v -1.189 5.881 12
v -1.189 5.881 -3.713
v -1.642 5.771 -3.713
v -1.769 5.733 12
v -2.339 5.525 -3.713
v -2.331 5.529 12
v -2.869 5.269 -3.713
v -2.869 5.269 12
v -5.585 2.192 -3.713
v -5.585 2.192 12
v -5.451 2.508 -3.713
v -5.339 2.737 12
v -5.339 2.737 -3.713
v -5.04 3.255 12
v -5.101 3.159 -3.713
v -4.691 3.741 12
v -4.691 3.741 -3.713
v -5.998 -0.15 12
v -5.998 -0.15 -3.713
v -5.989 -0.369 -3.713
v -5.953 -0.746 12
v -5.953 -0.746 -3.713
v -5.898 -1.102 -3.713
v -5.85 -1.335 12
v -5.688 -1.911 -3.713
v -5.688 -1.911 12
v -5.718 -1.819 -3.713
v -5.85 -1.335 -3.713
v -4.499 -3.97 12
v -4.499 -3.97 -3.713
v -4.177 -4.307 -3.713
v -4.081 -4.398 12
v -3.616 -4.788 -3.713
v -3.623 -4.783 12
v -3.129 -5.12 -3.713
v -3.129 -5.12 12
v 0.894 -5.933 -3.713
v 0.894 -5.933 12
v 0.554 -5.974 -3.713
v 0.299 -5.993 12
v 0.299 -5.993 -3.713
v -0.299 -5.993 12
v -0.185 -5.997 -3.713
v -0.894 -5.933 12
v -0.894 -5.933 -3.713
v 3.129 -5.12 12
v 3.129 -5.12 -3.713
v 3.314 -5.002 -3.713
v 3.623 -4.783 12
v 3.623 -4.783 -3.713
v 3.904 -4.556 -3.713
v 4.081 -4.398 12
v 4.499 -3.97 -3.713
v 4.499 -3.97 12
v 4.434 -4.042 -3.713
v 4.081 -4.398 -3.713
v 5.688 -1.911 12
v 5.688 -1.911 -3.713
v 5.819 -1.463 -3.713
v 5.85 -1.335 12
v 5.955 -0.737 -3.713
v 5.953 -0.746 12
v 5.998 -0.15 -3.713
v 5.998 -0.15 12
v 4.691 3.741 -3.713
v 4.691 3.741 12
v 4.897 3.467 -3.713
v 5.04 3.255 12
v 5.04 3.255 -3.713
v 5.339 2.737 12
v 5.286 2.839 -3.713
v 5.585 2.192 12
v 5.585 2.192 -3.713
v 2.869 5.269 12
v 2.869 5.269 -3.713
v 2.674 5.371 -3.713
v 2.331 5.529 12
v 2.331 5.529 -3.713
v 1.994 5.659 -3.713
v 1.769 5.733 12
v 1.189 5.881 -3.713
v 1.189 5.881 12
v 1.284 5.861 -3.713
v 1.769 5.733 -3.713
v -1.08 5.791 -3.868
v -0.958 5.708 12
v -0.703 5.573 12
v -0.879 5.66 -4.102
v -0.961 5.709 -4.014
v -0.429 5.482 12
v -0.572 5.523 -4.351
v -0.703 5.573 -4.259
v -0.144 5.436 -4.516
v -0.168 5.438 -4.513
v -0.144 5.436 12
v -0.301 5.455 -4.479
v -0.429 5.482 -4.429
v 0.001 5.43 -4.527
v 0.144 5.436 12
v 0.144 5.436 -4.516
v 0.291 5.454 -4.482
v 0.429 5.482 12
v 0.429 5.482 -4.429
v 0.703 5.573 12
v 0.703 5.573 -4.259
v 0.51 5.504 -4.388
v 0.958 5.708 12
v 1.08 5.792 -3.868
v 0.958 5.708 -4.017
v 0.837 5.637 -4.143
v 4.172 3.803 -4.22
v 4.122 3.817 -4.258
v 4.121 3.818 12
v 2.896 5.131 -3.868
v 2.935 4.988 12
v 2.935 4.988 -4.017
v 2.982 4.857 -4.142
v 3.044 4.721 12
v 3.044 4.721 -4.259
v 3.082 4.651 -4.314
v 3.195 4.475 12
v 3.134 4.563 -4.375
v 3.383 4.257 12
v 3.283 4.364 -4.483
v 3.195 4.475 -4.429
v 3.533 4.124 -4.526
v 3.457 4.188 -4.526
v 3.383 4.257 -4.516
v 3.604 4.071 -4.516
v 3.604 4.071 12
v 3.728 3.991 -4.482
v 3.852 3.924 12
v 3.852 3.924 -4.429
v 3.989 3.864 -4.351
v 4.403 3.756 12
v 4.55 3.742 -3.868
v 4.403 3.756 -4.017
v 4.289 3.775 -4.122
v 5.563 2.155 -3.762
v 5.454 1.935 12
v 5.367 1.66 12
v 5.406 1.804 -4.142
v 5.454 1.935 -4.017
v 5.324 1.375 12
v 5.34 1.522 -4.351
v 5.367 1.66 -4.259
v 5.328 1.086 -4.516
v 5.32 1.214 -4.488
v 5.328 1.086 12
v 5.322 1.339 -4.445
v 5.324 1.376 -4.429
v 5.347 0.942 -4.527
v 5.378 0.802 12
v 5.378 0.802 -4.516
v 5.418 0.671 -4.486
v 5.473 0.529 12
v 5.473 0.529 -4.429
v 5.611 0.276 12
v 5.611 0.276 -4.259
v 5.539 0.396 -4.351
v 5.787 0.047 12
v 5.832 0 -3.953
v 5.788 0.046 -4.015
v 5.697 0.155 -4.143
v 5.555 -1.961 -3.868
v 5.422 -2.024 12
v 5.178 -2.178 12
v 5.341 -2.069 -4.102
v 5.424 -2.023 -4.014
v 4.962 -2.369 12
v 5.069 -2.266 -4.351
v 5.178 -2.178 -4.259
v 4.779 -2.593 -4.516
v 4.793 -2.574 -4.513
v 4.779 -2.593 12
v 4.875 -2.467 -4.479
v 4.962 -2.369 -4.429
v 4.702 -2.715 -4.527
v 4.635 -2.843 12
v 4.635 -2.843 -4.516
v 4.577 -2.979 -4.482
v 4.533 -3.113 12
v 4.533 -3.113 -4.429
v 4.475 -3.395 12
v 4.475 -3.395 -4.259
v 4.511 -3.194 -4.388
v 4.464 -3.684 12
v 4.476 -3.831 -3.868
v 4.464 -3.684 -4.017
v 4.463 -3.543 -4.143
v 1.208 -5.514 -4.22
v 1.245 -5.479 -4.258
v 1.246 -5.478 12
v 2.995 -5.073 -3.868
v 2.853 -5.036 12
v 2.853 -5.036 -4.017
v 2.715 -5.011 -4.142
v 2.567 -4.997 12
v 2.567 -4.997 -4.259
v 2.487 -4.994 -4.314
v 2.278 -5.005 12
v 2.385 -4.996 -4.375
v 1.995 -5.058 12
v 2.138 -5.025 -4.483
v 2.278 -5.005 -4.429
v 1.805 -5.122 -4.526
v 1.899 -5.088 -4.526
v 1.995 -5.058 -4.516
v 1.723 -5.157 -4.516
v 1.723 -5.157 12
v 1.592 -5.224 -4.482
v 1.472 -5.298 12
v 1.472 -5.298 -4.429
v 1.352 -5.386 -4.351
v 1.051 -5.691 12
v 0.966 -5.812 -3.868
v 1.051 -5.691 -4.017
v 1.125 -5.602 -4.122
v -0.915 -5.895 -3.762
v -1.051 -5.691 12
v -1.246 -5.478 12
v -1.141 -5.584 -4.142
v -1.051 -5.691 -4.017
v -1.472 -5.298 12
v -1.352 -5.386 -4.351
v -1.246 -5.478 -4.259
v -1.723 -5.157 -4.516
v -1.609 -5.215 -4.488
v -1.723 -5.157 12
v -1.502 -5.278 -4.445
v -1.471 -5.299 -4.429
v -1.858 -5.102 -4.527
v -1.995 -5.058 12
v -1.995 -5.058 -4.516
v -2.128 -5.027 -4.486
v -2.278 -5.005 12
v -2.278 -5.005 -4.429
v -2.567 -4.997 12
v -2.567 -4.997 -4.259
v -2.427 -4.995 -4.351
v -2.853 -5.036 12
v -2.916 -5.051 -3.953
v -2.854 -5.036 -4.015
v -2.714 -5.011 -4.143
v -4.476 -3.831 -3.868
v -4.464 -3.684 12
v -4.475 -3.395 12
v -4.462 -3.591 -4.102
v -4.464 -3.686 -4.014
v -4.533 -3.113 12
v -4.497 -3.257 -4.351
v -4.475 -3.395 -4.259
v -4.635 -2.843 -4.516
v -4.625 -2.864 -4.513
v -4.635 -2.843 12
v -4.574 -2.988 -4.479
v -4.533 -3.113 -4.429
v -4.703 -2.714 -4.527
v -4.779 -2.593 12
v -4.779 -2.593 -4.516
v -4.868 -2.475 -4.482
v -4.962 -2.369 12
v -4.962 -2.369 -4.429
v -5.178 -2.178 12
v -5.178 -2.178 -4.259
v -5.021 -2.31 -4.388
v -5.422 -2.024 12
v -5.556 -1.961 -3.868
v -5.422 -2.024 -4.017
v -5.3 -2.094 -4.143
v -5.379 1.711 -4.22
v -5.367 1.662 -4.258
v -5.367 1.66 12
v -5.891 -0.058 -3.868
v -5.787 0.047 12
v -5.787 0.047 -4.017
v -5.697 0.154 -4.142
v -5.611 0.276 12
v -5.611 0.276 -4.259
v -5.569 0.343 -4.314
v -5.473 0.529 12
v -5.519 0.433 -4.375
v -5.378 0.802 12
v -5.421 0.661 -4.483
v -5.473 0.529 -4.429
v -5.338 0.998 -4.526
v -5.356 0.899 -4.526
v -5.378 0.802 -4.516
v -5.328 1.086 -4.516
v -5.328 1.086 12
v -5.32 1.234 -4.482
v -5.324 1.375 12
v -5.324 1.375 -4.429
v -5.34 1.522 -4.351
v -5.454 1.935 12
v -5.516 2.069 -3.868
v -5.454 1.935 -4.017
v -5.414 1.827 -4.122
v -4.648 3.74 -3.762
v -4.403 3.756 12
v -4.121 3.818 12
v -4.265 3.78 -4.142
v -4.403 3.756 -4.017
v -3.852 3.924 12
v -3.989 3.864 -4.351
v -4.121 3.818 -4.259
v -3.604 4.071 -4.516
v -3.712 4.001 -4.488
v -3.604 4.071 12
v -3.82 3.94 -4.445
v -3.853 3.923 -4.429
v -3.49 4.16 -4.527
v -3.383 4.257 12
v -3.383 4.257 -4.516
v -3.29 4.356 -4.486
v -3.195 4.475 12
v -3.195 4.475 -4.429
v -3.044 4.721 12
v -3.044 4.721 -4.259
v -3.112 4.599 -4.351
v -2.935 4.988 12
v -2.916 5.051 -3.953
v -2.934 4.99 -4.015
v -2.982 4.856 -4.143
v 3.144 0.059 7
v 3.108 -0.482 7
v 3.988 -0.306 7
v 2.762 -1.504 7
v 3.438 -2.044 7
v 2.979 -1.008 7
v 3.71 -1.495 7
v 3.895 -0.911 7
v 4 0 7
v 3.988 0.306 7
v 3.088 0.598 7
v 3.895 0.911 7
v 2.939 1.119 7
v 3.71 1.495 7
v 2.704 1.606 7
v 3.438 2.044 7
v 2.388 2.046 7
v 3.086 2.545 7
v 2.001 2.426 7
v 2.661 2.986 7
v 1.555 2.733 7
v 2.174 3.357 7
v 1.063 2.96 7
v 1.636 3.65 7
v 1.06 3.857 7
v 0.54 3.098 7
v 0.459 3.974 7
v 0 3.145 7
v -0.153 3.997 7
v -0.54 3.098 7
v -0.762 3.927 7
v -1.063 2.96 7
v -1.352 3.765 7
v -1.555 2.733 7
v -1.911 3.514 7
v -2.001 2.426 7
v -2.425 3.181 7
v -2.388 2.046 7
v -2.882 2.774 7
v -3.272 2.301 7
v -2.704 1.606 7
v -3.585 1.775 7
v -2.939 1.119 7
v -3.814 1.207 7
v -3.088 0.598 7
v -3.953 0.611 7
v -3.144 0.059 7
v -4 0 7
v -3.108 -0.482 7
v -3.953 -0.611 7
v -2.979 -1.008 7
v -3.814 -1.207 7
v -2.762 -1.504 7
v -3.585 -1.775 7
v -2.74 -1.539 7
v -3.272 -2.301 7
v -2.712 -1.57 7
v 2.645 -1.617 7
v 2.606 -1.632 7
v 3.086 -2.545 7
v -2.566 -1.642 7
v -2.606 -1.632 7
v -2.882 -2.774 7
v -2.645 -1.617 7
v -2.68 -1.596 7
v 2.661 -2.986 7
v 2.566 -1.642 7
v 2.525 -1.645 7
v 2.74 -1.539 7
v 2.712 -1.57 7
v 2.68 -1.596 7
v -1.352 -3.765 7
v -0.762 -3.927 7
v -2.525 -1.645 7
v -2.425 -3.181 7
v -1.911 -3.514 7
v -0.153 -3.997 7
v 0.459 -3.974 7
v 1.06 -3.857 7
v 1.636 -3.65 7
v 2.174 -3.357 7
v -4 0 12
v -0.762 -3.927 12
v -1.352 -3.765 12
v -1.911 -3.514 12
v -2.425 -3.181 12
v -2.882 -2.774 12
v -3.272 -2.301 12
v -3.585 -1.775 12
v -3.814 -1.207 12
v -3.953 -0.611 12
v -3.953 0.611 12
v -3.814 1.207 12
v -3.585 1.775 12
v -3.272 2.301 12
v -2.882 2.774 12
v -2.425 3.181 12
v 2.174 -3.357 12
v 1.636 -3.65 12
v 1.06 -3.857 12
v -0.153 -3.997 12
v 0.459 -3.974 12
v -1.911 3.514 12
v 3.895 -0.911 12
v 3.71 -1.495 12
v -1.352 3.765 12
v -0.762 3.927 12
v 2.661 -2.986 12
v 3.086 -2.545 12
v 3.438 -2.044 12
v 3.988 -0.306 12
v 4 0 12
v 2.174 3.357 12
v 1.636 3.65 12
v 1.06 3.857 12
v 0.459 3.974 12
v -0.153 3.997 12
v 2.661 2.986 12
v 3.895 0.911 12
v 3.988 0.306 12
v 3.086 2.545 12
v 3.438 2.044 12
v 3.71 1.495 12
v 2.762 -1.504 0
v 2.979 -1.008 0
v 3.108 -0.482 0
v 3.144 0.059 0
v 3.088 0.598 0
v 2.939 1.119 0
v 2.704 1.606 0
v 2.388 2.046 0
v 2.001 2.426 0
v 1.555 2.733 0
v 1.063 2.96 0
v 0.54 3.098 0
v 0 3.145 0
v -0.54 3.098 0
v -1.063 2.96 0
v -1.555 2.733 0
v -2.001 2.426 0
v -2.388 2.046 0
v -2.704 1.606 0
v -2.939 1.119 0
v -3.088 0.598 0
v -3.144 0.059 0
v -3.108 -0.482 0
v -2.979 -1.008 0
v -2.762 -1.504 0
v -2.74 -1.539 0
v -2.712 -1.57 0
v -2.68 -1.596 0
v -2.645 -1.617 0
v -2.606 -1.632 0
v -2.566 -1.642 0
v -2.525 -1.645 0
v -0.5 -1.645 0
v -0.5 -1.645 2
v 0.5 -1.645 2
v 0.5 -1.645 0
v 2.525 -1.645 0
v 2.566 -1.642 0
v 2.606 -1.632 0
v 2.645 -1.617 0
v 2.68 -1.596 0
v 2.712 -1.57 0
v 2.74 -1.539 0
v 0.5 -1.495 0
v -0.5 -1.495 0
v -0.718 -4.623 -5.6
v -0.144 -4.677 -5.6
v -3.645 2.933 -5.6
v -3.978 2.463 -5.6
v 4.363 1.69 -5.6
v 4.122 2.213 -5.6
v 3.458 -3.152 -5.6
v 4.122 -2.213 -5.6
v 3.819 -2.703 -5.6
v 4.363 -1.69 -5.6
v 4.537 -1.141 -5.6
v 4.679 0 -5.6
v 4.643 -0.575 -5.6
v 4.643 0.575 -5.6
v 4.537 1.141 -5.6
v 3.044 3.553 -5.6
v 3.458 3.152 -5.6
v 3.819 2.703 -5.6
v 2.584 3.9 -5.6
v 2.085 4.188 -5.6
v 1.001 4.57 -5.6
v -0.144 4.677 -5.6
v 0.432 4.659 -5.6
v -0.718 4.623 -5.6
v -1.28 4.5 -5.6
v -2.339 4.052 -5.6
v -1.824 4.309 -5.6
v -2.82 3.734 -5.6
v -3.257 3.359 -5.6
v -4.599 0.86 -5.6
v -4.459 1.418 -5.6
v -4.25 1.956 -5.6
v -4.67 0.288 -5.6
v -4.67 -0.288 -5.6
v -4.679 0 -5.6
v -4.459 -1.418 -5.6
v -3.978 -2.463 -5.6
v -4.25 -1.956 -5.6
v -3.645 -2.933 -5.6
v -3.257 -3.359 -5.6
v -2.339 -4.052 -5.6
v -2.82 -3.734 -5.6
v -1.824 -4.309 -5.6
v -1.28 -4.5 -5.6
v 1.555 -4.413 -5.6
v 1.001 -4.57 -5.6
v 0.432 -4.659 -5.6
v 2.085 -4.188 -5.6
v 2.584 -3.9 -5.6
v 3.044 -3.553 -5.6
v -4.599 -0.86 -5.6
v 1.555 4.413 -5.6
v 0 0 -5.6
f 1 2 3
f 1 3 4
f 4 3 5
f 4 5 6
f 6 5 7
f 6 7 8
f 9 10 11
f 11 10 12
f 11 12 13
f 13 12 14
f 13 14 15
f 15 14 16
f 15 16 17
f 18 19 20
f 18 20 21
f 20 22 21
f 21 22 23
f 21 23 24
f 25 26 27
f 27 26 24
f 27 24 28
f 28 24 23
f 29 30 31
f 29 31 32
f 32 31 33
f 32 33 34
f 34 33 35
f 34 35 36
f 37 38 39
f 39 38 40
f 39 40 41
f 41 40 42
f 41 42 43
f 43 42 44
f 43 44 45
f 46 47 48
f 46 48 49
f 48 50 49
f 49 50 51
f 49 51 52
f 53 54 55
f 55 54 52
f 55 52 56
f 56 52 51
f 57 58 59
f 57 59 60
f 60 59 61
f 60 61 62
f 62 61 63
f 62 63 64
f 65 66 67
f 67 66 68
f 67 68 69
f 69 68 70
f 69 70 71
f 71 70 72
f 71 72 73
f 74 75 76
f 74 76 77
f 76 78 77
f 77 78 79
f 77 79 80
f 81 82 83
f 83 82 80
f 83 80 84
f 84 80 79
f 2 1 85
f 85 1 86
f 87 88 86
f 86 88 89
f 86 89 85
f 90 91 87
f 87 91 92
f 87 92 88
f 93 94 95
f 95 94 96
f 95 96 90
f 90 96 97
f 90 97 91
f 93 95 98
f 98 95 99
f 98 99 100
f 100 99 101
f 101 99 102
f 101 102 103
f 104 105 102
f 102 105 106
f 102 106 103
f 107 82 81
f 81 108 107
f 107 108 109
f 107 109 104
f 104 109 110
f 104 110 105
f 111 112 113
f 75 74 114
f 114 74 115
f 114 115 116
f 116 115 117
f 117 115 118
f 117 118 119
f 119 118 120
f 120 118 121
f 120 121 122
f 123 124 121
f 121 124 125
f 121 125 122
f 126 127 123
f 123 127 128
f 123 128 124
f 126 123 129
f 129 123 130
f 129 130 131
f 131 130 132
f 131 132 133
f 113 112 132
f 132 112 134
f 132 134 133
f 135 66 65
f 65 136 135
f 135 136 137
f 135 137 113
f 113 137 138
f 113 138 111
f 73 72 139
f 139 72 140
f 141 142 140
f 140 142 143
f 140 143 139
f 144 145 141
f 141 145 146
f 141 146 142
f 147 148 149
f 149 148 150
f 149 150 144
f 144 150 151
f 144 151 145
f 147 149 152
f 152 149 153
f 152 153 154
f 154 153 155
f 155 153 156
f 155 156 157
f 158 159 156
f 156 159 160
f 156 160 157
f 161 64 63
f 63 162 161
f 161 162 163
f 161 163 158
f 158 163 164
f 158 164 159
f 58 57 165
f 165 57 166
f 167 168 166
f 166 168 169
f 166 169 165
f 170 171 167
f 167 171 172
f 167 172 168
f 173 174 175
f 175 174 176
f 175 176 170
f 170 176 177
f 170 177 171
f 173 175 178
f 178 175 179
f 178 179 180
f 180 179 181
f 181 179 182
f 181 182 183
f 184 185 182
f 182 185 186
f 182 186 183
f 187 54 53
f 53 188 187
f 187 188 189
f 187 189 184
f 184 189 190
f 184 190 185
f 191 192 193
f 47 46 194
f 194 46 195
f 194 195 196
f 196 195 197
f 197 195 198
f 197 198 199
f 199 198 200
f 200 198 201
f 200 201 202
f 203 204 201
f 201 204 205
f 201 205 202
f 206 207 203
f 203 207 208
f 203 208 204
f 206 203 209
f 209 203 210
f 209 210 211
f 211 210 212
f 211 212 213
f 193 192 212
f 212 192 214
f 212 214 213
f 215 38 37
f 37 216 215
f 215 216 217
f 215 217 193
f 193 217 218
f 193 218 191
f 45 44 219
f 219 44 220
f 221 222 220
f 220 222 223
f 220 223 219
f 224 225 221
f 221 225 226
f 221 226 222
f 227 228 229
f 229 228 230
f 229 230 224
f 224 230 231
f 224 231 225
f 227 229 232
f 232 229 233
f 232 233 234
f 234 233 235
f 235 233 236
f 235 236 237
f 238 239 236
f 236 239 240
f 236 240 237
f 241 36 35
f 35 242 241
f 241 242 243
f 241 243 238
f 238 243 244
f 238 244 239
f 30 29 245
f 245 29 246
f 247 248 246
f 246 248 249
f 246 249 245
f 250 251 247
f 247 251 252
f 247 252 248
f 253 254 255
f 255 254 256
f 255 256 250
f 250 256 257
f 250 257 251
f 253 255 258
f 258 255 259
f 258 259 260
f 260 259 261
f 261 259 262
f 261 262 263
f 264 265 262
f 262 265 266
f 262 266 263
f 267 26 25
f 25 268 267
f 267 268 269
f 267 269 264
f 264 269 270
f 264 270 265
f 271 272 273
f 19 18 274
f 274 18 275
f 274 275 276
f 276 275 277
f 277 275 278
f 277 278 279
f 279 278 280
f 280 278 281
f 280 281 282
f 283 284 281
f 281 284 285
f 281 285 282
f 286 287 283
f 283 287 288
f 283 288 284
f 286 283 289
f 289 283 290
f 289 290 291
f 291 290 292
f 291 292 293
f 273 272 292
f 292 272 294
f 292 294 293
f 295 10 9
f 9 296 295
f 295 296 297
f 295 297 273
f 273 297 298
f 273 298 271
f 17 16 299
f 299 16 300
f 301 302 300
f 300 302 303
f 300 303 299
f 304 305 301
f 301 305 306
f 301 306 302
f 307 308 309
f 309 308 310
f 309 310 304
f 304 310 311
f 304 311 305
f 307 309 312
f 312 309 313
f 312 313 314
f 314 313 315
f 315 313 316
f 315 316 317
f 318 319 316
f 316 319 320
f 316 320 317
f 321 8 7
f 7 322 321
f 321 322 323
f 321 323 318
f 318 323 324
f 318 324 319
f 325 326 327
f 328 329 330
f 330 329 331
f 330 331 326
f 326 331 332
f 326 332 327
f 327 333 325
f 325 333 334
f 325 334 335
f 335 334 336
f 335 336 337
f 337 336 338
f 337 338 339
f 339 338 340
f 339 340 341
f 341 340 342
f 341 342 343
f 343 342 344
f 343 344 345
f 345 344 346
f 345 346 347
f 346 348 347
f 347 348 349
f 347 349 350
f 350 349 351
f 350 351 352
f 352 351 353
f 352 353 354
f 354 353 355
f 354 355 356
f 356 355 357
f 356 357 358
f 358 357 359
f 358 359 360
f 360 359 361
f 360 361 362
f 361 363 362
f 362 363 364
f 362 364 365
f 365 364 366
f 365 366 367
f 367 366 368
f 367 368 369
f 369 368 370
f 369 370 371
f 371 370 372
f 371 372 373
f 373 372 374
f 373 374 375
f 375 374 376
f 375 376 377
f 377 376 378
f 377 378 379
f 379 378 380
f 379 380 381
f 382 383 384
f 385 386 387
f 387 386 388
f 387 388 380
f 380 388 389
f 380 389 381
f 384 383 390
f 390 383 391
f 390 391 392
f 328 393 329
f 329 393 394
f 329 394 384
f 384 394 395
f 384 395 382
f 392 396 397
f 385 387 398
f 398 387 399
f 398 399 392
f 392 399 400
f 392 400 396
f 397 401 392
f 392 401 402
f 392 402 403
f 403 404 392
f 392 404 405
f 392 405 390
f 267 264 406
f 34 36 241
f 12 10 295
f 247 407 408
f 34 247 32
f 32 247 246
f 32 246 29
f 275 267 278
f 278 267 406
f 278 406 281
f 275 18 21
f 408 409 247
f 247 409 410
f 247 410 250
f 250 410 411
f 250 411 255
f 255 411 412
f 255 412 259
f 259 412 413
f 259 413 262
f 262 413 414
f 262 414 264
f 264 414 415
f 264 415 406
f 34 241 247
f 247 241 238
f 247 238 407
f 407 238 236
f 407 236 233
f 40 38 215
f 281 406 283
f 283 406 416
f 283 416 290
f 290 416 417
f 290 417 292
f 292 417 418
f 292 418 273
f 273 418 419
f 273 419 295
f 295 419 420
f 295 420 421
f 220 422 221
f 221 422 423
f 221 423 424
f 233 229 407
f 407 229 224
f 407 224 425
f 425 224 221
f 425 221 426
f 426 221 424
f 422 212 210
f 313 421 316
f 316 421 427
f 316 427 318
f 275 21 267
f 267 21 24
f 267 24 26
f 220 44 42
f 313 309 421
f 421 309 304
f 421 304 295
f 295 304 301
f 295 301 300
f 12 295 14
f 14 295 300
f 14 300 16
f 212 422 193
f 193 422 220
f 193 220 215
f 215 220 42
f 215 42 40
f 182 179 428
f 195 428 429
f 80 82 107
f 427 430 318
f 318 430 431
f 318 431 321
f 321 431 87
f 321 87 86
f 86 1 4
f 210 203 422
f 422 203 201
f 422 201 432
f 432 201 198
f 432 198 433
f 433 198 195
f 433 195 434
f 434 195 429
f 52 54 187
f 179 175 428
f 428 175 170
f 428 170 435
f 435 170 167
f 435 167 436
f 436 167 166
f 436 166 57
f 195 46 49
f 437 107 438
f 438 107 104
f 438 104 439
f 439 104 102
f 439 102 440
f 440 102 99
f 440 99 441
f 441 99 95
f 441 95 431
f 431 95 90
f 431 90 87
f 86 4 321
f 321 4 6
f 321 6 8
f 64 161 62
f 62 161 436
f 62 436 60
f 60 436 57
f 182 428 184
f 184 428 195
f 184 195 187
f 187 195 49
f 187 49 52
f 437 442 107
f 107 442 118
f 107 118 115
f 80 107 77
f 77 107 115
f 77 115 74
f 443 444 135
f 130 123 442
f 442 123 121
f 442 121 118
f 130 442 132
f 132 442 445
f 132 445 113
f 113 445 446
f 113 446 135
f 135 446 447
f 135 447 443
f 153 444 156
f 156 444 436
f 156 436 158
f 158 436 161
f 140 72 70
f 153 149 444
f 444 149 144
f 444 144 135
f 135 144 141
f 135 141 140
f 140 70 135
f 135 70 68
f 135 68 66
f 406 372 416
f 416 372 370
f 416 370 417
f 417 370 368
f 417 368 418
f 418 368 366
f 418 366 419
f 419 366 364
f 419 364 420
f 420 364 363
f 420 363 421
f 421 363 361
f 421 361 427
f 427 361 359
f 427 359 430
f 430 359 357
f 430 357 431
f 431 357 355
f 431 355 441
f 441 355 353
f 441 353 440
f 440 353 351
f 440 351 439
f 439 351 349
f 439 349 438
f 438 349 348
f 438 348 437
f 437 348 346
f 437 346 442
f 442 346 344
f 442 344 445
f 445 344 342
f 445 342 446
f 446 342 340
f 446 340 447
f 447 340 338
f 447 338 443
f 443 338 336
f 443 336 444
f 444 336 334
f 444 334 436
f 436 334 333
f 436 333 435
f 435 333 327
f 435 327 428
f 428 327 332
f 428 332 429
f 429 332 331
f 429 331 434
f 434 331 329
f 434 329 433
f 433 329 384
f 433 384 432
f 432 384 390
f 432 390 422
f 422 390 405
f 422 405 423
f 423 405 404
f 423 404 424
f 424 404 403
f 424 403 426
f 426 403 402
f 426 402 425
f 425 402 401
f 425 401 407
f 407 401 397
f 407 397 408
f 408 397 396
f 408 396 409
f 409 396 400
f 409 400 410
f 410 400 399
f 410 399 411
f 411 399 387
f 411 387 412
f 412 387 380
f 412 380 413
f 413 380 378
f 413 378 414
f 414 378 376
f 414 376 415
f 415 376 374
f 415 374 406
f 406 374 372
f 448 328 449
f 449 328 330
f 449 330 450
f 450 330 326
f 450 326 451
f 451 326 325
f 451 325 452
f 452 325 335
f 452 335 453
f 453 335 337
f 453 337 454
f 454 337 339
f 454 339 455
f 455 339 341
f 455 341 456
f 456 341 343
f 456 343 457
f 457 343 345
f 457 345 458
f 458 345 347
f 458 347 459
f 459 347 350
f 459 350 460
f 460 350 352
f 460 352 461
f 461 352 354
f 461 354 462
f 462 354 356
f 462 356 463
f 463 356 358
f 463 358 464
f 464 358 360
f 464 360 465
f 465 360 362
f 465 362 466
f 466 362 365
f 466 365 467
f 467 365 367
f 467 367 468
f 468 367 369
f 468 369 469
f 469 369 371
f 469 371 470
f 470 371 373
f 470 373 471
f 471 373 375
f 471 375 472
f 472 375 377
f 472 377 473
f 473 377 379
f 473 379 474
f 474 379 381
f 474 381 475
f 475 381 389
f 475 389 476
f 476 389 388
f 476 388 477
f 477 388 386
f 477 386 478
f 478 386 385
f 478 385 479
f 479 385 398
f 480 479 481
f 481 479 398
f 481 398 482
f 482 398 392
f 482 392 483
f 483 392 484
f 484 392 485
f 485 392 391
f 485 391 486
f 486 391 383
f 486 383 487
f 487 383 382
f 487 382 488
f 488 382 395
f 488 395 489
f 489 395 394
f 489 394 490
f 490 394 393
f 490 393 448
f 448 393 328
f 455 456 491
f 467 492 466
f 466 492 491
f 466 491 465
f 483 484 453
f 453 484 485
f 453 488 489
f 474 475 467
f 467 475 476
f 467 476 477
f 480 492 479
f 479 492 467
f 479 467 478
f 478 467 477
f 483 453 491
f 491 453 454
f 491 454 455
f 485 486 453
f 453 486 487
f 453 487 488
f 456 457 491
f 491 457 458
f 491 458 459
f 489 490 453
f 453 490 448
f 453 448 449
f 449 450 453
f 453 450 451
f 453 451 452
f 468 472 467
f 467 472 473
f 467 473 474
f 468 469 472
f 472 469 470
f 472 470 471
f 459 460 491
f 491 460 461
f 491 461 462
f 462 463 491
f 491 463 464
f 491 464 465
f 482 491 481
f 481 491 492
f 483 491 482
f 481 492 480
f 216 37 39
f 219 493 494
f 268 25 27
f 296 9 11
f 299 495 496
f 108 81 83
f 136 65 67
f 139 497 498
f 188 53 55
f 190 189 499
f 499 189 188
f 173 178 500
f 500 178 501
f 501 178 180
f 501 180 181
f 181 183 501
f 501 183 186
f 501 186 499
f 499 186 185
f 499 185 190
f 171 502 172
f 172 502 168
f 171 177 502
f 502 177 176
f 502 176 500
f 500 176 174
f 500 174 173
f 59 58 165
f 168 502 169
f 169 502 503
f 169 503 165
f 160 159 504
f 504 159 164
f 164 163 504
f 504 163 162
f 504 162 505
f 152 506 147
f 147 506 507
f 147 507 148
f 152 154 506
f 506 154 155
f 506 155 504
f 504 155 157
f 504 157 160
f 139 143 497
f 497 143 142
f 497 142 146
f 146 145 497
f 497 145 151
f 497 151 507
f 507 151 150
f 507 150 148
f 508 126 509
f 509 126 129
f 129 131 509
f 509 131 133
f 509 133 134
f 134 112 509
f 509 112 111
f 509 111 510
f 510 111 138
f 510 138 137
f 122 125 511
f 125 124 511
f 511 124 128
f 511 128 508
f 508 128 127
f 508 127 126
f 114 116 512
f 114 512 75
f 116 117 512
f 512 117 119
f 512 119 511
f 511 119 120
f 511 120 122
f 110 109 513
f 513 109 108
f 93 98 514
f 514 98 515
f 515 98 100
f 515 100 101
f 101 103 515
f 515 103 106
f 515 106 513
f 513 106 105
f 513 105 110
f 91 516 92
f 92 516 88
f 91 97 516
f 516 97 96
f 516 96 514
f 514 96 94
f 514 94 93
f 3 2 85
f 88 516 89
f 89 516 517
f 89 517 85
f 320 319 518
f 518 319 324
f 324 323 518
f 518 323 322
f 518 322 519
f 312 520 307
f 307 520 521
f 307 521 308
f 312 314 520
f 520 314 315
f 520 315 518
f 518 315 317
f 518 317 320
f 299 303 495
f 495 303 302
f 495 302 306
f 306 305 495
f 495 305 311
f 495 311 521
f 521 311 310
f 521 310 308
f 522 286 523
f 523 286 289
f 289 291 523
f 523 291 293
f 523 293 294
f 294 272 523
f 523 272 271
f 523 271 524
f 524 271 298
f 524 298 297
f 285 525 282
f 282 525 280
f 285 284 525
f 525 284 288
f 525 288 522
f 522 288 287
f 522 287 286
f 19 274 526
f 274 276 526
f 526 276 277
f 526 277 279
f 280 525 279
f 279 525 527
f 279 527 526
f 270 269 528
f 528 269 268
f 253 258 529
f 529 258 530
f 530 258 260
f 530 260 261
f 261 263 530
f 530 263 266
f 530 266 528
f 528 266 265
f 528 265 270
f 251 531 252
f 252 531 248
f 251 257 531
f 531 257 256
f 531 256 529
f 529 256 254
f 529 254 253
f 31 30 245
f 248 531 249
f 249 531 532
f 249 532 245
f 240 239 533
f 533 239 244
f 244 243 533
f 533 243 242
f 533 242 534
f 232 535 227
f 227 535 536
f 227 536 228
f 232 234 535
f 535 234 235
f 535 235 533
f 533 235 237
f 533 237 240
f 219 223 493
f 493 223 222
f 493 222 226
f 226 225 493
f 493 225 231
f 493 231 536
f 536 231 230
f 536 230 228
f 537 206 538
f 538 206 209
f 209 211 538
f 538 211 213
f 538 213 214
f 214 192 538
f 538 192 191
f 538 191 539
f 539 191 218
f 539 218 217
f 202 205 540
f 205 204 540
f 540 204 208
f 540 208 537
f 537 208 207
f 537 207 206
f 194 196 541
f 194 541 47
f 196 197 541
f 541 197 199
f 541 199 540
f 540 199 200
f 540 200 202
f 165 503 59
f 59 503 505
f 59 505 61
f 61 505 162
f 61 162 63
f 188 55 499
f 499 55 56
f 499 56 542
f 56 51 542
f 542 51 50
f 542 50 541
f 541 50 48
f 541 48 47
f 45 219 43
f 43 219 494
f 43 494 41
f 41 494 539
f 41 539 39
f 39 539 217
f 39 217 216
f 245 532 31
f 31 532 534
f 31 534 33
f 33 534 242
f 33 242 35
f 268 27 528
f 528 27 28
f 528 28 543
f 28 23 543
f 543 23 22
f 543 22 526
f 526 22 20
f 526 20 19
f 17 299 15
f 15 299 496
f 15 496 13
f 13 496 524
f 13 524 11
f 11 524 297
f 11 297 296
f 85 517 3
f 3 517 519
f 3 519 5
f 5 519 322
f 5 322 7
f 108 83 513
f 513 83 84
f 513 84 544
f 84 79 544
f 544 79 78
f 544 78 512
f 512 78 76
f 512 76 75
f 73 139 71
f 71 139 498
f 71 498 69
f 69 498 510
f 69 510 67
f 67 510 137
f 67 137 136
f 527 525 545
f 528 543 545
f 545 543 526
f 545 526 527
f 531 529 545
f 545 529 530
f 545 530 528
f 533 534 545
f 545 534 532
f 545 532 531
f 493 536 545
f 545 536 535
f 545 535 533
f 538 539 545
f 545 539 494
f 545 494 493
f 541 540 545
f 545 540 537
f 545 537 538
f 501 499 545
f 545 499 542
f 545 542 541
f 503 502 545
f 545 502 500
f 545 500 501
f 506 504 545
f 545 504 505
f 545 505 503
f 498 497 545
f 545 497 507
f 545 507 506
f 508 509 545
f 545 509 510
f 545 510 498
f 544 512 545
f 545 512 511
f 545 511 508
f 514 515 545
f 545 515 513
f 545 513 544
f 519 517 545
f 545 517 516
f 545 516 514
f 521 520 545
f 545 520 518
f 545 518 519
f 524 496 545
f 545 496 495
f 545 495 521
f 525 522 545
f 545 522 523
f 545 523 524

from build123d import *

# Parameters (mm, degrees)
SKICA1_R                 = 6
P_IDAT_VYSUNUT_M1_DEPTH  = 7
SKICA5_R                 = 6
SKICA5_R_2               = 4
P_IDAT_VYSUNUT_M3_DEPTH  = 5
SKICA6_R                 = 6
P_IDAT_VYSUNUT_M4_DEPTH  = 0.6
SKICA7_R                 = 1.266795128
P_IDAT_VYSUNUT_M5_DEPTH  = 1
SKICA8_R                 = 1.792460028
ODEBRAT_VYSUNUT_M2_DEPTH = 21
ODEBRAT_VYSUNUT_M4_DEPTH = 7
P_IDAT_VYSUNUT_M6_DEPTH  = 0.5
P_IDAT_VYSUNUT_M7_DEPTH  = 5


with BuildPart() as part:
    # Skica1 → Přidat vysunutím1 (new body)
    with BuildSketch(Plane.XY):
        Circle(SKICA1_R)
        with BuildLine():
            Line((-2.524876235, -1.575), (2.524876235, -1.575))
            ThreePointArc((2.524876235, -1.575), (2.627027018, -1.546945391), (2.700519799, -1.470652174))
            ThreePointArc((2.700519799, -1.470652174), (0, 3.075), (-2.700519799, -1.470652174))
            ThreePointArc((-2.700519799, -1.470652174), (-2.627027018, -1.546945391), (-2.524876235, -1.575))
        make_face(mode=Mode.SUBTRACT)
    extrude(amount=P_IDAT_VYSUNUT_M1_DEPTH)

    # Skica5 → Přidat vysunutím3 (add)
    with BuildSketch(Plane.XY.offset(7)):
        Circle(SKICA5_R)
        Circle(SKICA5_R_2, mode=Mode.SUBTRACT)
    extrude(amount=P_IDAT_VYSUNUT_M3_DEPTH)

    # Skica6 → Přidat vysunutím4 (add)
    with BuildSketch(Plane(origin=(0, 0, 0), x_dir=(-1, 0, 0), z_dir=(0, 0, -1))):
        Circle(SKICA6_R)
    extrude(amount=P_IDAT_VYSUNUT_M4_DEPTH)

    # Skica7 → Přidat vysunutím5 (add)
    with BuildSketch(Plane.XY.offset(5)):
        with Locations((0, -2.741795128)):
            Circle(SKICA7_R)
    extrude(amount=-P_IDAT_VYSUNUT_M5_DEPTH)

    # Skica8 → Odebrat vysunutím2 (cut)
    with BuildSketch(Plane.XY.offset(12)):
        with Locations((0, 7.222215072)):
            Circle(SKICA8_R)
        with Locations((4.642350363, 5.532537723)):
            Circle(SKICA8_R)
        with Locations((7.112493397, 1.254124486)):
            Circle(SKICA8_R)
        with Locations((6.254621724, -3.611107536)):
            Circle(SKICA8_R)
        with Locations((2.470143034, -6.786662209)):
            Circle(SKICA8_R)
        with Locations((-2.470143034, -6.786662209)):
            Circle(SKICA8_R)
        with Locations((-6.254621724, -3.611107536)):
            Circle(SKICA8_R)
        with Locations((-7.112493397, 1.254124486)):
            Circle(SKICA8_R)
        with Locations((-4.642350363, 5.532537723)):
            Circle(SKICA8_R)
    extrude(amount=-ODEBRAT_VYSUNUT_M2_DEPTH, mode=Mode.SUBTRACT)

    # Skica11 → Odebrat vysunutím4 (cut)
    with BuildSketch(Plane.XY.offset(7)):
        with BuildLine():
            Line((-2.524876235, -1.645), (2.524876235, -1.645))
            ThreePointArc((2.524876235, -1.645), (2.662779793, -1.607126277), (2.761995046, -1.504130435))
            ThreePointArc((2.761995046, -1.504130435), (0, 3.145), (-2.761995046, -1.504130435))
            ThreePointArc((-2.761995046, -1.504130435), (-2.662779793, -1.607126277), (-2.524876235, -1.645))
        make_face()
    extrude(amount=-ODEBRAT_VYSUNUT_M4_DEPTH, mode=Mode.SUBTRACT)

    # Skica12 → Přidat vysunutím6 (add, symmetric)
    with BuildSketch(Plane(origin=(0, 0, 0), x_dir=(0, 0, -1), z_dir=(1, 0, 0))):
        Polygon((-2, -1.645), (0, -1.495), (0, -1.645), align=None)
    extrude(amount=P_IDAT_VYSUNUT_M6_DEPTH, both=True)

    # Skica13 → Přidat vysunutím7 (add)
    with BuildSketch(Plane(origin=(0, 0, -0.6), x_dir=(-1, 0, 0), z_dir=(0, 0, -1))):
        with BuildLine():
            ThreePointArc((2.869302785, 5.269449832), (3.490179266, 4.159433679), (4.691145849, 3.740741989))
            ThreePointArc((4.691145849, 3.740741989), (5.196152423, 3), (5.585150516, 2.192280483))
            ThreePointArc((5.585150516, 2.192280483), (5.347264864, 0.942867069), (5.998128811, -0.149835813))
            ThreePointArc((5.998128811, -0.149835813), (5.908846518, -1.041889066), (5.687644248, -1.910681268))
            ThreePointArc((5.687644248, -1.910681268), (4.702305805, -2.714877522), (4.498520641, -3.970303773))
            ThreePointArc((4.498520641, -3.970303773), (3.856725658, -4.596266659), (3.128826026, -5.119614019))
            ThreePointArc((3.128826026, -5.119614019), (1.857085598, -5.102300748), (0.894004667, -5.933022472))
            ThreePointArc((0.894004667, -5.933022472), (0, -6), (-0.894004667, -5.933022472))
            ThreePointArc((-0.894004667, -5.933022472), (-1.857085598, -5.102300748), (-3.128826026, -5.119614019))
            ThreePointArc((-3.128826026, -5.119614019), (-3.856725658, -4.596266659), (-4.498520641, -3.970303773))
            ThreePointArc((-4.498520641, -3.970303773), (-4.702305805, -2.714877522), (-5.687644248, -1.910681268))
            ThreePointArc((-5.687644248, -1.910681268), (-5.908846518, -1.041889066), (-5.998128811, -0.149835813))
            ThreePointArc((-5.998128811, -0.149835813), (-5.347264864, 0.942867069), (-5.585150516, 2.192280483))
            ThreePointArc((-5.585150516, 2.192280483), (-5.196152423, 3), (-4.691145849, 3.740741989))
            ThreePointArc((-4.691145849, 3.740741989), (-3.490179266, 4.159433679), (-2.869302785, 5.269449832))
            ThreePointArc((-2.869302785, 5.269449832), (-2.05212086, 5.638155725), (-1.189123608, 5.88098504))
            ThreePointArc((-1.189123608, 5.88098504), (0, 5.429755044), (1.189123608, 5.88098504))
            ThreePointArc((1.189123608, 5.88098504), (2.05212086, 5.638155725), (2.869302785, 5.269449832))
        make_face()
    extrude(amount=P_IDAT_VYSUNUT_M7_DEPTH)

    # Skica14 → Odebrat rotací1 (revolve, cut)
    with BuildSketch(Plane(origin=(0, 0, 0), x_dir=(1, 0, 0), z_dir=(0, 1, 0))):
        Polygon((-0.519399501, 11.540173112), (-8.873937642, -0.391343881), (-8.306128357, 8.726101498), align=None)
    revolve(axis=Axis((0, 0, 0), (0, 0, -1)), mode=Mode.SUBTRACT)


solid = part.part
